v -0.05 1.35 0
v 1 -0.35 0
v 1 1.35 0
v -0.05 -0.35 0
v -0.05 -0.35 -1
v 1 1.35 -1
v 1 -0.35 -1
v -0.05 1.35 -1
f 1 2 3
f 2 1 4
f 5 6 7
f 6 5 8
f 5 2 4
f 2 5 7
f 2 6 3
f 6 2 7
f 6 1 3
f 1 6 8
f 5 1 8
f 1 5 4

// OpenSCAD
//------------------------------------------------------
// Base
// BAse
// 5@xes 15/07/2022
// Size Must be close to 1x1 !
//------------------------------------------------------

$fn=20;


//render() translate([0.5,0,0]) mirror([1,0,0]) letter("/");
render() translate([-0.05,-0.35,-1]) cube(size = [1.05,1.7,1], center = false);
